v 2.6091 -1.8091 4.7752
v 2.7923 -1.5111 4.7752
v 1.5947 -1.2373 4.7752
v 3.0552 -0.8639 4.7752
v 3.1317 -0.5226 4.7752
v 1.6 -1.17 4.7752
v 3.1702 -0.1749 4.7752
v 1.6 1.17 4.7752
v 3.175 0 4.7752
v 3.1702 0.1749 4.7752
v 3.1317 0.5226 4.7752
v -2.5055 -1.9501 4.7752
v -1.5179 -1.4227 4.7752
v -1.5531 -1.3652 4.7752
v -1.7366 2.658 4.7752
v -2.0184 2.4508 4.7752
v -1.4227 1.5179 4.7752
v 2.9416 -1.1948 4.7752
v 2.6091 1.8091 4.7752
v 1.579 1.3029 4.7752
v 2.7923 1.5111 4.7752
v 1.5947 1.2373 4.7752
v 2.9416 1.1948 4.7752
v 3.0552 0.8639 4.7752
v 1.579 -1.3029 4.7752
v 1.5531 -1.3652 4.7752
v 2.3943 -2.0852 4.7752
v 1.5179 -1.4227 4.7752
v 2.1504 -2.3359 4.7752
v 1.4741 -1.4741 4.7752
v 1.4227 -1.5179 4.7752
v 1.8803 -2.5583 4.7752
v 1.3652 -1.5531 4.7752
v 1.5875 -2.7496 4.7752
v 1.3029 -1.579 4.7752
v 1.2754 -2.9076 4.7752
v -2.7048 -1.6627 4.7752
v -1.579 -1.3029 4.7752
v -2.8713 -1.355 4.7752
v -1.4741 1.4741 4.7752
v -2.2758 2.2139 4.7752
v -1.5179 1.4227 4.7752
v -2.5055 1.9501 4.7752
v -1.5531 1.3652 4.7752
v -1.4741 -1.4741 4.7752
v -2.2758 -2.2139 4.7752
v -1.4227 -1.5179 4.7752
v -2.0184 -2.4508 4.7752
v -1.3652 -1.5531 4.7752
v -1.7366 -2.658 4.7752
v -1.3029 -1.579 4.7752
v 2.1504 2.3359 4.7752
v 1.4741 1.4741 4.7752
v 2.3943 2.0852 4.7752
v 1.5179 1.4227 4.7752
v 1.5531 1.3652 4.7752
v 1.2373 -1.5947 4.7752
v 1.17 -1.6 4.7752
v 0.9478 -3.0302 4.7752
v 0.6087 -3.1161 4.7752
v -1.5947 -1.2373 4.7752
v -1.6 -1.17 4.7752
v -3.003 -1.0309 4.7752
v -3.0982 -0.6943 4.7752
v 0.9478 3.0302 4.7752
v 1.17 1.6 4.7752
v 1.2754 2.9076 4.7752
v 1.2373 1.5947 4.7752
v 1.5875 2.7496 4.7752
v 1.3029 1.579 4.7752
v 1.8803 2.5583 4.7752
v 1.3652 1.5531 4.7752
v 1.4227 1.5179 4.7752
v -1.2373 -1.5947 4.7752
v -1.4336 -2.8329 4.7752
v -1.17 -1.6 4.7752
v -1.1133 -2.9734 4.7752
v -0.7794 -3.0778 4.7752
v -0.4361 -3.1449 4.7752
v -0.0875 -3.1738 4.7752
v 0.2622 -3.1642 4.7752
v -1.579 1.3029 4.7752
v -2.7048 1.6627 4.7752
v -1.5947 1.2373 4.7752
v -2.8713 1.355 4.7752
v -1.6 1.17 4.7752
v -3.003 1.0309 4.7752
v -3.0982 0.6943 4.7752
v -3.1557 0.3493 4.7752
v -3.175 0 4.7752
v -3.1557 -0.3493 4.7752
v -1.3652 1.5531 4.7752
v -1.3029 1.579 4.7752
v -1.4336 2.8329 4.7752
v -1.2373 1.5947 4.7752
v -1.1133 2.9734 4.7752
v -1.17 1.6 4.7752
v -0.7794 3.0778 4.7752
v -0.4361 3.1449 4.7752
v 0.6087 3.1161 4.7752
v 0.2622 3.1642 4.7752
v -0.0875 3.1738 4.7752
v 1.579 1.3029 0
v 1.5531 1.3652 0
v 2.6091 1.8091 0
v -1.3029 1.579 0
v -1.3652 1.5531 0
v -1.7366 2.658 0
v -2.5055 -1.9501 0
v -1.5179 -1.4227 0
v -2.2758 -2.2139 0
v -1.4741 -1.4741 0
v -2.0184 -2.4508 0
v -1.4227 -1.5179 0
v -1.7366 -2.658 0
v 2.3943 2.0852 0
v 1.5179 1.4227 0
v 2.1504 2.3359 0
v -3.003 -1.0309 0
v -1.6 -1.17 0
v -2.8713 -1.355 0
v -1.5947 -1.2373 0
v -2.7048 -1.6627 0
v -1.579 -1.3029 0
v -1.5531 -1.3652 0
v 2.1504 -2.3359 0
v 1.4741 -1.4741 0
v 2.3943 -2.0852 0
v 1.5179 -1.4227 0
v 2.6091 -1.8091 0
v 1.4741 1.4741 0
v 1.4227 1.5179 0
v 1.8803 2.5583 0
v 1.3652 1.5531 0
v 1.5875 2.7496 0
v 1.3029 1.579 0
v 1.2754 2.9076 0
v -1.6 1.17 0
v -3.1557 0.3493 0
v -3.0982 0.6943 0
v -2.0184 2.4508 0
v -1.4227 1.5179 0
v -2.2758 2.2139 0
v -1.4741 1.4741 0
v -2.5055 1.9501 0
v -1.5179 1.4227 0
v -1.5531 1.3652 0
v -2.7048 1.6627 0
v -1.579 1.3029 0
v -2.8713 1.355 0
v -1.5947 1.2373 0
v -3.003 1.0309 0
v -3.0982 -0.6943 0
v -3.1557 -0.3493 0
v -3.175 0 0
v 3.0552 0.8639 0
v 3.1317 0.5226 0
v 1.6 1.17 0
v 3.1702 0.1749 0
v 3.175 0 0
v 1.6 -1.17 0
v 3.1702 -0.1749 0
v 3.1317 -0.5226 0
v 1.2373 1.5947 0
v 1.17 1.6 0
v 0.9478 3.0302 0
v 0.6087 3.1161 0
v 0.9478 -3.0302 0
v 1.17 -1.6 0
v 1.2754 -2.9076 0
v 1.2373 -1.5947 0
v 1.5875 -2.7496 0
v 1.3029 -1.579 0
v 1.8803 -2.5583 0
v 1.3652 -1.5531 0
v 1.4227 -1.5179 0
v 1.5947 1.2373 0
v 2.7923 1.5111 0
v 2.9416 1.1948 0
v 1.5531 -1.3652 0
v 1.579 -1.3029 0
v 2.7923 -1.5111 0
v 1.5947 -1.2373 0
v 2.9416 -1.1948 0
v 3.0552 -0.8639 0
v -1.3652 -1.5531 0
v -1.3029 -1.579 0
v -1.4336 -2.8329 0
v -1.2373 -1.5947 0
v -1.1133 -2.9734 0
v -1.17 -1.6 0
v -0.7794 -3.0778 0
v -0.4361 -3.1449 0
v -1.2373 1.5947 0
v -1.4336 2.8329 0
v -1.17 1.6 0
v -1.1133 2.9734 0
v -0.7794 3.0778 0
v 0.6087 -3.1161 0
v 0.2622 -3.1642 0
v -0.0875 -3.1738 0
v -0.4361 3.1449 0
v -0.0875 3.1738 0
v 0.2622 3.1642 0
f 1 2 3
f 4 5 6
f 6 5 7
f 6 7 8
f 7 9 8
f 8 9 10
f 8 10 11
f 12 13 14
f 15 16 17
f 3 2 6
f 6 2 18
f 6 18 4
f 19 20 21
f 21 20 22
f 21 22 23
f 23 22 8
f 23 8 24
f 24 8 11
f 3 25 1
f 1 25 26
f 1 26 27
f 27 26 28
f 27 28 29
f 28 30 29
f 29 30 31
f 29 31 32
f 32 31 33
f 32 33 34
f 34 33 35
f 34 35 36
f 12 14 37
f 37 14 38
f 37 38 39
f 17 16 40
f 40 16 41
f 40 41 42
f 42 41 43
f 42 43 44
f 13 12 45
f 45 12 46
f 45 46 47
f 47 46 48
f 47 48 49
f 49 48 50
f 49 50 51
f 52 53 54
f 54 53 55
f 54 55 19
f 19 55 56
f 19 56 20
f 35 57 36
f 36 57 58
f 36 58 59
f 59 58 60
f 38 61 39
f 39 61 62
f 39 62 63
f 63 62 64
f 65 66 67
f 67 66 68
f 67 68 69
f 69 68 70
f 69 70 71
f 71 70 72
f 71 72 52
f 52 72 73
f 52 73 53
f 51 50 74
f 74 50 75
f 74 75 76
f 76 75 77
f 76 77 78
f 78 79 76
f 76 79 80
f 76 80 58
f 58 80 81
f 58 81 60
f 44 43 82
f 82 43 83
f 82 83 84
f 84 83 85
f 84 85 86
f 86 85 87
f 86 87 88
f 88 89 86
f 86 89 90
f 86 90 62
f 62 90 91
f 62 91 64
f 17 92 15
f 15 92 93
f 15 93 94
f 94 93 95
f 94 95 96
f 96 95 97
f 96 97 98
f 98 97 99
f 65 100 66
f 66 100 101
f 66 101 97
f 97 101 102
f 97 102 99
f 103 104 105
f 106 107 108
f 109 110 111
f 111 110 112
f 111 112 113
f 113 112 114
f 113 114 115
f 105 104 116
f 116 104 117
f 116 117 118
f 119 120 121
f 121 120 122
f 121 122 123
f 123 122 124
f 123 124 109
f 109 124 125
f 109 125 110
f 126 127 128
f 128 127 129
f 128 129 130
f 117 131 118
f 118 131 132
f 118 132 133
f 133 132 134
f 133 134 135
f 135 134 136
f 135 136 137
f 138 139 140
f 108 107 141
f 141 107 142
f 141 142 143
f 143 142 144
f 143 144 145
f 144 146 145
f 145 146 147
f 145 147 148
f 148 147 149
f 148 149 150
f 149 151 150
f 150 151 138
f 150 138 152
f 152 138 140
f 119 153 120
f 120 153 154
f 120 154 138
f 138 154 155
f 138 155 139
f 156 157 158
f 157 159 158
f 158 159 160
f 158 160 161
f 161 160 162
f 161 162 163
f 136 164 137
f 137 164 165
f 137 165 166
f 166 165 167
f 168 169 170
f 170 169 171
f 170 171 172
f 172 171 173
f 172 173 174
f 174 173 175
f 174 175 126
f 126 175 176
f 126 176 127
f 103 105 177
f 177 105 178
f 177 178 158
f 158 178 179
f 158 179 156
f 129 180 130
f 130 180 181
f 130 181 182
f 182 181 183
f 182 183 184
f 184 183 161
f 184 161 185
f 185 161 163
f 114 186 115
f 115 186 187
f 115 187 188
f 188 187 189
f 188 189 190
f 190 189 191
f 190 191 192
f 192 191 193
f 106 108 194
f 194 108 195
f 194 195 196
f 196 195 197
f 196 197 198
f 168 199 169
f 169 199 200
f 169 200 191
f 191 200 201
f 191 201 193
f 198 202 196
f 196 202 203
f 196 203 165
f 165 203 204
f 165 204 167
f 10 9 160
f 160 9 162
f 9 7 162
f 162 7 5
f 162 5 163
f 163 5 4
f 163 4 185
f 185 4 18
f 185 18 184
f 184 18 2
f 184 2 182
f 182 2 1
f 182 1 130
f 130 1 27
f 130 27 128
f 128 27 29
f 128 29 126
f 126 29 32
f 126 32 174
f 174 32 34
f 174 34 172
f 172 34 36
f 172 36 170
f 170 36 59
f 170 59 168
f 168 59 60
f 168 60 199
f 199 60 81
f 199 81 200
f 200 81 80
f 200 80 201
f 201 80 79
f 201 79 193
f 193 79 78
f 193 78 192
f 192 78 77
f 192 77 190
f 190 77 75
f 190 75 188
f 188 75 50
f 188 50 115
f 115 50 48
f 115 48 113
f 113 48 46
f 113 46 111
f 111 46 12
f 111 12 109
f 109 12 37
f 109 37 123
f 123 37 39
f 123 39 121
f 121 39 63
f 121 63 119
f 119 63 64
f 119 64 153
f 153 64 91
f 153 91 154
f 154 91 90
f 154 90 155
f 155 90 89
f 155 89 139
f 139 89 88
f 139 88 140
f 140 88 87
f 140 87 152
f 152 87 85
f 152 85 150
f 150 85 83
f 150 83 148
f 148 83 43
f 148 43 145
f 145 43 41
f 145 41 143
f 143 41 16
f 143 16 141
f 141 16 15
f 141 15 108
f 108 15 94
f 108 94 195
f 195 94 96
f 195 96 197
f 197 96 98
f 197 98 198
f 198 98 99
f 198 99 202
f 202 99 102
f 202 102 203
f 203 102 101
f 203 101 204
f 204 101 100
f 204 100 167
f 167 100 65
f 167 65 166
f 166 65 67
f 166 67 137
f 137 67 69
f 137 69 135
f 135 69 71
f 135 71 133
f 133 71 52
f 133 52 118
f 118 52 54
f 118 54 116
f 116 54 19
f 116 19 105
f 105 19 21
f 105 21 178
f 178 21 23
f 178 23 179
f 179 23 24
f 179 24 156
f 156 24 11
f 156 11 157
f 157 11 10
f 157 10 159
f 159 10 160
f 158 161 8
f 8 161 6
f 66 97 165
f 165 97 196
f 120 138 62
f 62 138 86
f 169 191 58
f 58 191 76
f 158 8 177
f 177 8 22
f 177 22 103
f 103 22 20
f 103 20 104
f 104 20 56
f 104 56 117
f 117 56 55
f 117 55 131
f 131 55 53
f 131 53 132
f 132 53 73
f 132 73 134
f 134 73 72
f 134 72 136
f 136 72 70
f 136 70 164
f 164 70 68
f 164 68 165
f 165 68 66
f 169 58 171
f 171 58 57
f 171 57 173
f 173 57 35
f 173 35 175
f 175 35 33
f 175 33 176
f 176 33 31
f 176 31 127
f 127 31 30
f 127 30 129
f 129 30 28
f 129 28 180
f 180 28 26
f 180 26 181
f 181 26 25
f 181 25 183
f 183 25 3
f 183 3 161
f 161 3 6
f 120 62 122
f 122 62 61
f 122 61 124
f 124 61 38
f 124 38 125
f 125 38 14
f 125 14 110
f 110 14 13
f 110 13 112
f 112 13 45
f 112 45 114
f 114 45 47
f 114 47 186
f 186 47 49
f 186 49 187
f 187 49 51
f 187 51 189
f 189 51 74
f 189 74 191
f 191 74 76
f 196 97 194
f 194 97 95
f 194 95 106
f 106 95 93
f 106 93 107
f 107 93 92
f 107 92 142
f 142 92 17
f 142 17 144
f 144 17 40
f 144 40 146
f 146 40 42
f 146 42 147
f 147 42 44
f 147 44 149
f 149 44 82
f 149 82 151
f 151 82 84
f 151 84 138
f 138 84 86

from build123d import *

# Parameters (mm, degrees)
SKETCH1_R           = 3.175
SKETCH1_W           = 3.2
SKETCH1_H           = 3.2
BOSS_EXTRUDE1_DEPTH = 4.7752
FILLET1_R           = 0.43


with BuildPart() as part:
    # Sketch1 → Boss-Extrude1 (new body)
    with BuildSketch(Plane.XY):
        Circle(SKETCH1_R)
        Rectangle(SKETCH1_W, SKETCH1_H, mode=Mode.SUBTRACT)
    extrude(amount=BOSS_EXTRUDE1_DEPTH)

    # Fillet1
    fillet1_edges = [part.edges().sort_by_distance(p)[0] for p in [
        (1.6, -1.6, 2.3876),
        (1.6, 1.6, 2.3876),
        (-1.6, 1.6, 2.3876),
        (-1.6, -1.6, 2.3876),
    ]]
    fillet(fillet1_edges, radius=FILLET1_R)


solid = part.part
